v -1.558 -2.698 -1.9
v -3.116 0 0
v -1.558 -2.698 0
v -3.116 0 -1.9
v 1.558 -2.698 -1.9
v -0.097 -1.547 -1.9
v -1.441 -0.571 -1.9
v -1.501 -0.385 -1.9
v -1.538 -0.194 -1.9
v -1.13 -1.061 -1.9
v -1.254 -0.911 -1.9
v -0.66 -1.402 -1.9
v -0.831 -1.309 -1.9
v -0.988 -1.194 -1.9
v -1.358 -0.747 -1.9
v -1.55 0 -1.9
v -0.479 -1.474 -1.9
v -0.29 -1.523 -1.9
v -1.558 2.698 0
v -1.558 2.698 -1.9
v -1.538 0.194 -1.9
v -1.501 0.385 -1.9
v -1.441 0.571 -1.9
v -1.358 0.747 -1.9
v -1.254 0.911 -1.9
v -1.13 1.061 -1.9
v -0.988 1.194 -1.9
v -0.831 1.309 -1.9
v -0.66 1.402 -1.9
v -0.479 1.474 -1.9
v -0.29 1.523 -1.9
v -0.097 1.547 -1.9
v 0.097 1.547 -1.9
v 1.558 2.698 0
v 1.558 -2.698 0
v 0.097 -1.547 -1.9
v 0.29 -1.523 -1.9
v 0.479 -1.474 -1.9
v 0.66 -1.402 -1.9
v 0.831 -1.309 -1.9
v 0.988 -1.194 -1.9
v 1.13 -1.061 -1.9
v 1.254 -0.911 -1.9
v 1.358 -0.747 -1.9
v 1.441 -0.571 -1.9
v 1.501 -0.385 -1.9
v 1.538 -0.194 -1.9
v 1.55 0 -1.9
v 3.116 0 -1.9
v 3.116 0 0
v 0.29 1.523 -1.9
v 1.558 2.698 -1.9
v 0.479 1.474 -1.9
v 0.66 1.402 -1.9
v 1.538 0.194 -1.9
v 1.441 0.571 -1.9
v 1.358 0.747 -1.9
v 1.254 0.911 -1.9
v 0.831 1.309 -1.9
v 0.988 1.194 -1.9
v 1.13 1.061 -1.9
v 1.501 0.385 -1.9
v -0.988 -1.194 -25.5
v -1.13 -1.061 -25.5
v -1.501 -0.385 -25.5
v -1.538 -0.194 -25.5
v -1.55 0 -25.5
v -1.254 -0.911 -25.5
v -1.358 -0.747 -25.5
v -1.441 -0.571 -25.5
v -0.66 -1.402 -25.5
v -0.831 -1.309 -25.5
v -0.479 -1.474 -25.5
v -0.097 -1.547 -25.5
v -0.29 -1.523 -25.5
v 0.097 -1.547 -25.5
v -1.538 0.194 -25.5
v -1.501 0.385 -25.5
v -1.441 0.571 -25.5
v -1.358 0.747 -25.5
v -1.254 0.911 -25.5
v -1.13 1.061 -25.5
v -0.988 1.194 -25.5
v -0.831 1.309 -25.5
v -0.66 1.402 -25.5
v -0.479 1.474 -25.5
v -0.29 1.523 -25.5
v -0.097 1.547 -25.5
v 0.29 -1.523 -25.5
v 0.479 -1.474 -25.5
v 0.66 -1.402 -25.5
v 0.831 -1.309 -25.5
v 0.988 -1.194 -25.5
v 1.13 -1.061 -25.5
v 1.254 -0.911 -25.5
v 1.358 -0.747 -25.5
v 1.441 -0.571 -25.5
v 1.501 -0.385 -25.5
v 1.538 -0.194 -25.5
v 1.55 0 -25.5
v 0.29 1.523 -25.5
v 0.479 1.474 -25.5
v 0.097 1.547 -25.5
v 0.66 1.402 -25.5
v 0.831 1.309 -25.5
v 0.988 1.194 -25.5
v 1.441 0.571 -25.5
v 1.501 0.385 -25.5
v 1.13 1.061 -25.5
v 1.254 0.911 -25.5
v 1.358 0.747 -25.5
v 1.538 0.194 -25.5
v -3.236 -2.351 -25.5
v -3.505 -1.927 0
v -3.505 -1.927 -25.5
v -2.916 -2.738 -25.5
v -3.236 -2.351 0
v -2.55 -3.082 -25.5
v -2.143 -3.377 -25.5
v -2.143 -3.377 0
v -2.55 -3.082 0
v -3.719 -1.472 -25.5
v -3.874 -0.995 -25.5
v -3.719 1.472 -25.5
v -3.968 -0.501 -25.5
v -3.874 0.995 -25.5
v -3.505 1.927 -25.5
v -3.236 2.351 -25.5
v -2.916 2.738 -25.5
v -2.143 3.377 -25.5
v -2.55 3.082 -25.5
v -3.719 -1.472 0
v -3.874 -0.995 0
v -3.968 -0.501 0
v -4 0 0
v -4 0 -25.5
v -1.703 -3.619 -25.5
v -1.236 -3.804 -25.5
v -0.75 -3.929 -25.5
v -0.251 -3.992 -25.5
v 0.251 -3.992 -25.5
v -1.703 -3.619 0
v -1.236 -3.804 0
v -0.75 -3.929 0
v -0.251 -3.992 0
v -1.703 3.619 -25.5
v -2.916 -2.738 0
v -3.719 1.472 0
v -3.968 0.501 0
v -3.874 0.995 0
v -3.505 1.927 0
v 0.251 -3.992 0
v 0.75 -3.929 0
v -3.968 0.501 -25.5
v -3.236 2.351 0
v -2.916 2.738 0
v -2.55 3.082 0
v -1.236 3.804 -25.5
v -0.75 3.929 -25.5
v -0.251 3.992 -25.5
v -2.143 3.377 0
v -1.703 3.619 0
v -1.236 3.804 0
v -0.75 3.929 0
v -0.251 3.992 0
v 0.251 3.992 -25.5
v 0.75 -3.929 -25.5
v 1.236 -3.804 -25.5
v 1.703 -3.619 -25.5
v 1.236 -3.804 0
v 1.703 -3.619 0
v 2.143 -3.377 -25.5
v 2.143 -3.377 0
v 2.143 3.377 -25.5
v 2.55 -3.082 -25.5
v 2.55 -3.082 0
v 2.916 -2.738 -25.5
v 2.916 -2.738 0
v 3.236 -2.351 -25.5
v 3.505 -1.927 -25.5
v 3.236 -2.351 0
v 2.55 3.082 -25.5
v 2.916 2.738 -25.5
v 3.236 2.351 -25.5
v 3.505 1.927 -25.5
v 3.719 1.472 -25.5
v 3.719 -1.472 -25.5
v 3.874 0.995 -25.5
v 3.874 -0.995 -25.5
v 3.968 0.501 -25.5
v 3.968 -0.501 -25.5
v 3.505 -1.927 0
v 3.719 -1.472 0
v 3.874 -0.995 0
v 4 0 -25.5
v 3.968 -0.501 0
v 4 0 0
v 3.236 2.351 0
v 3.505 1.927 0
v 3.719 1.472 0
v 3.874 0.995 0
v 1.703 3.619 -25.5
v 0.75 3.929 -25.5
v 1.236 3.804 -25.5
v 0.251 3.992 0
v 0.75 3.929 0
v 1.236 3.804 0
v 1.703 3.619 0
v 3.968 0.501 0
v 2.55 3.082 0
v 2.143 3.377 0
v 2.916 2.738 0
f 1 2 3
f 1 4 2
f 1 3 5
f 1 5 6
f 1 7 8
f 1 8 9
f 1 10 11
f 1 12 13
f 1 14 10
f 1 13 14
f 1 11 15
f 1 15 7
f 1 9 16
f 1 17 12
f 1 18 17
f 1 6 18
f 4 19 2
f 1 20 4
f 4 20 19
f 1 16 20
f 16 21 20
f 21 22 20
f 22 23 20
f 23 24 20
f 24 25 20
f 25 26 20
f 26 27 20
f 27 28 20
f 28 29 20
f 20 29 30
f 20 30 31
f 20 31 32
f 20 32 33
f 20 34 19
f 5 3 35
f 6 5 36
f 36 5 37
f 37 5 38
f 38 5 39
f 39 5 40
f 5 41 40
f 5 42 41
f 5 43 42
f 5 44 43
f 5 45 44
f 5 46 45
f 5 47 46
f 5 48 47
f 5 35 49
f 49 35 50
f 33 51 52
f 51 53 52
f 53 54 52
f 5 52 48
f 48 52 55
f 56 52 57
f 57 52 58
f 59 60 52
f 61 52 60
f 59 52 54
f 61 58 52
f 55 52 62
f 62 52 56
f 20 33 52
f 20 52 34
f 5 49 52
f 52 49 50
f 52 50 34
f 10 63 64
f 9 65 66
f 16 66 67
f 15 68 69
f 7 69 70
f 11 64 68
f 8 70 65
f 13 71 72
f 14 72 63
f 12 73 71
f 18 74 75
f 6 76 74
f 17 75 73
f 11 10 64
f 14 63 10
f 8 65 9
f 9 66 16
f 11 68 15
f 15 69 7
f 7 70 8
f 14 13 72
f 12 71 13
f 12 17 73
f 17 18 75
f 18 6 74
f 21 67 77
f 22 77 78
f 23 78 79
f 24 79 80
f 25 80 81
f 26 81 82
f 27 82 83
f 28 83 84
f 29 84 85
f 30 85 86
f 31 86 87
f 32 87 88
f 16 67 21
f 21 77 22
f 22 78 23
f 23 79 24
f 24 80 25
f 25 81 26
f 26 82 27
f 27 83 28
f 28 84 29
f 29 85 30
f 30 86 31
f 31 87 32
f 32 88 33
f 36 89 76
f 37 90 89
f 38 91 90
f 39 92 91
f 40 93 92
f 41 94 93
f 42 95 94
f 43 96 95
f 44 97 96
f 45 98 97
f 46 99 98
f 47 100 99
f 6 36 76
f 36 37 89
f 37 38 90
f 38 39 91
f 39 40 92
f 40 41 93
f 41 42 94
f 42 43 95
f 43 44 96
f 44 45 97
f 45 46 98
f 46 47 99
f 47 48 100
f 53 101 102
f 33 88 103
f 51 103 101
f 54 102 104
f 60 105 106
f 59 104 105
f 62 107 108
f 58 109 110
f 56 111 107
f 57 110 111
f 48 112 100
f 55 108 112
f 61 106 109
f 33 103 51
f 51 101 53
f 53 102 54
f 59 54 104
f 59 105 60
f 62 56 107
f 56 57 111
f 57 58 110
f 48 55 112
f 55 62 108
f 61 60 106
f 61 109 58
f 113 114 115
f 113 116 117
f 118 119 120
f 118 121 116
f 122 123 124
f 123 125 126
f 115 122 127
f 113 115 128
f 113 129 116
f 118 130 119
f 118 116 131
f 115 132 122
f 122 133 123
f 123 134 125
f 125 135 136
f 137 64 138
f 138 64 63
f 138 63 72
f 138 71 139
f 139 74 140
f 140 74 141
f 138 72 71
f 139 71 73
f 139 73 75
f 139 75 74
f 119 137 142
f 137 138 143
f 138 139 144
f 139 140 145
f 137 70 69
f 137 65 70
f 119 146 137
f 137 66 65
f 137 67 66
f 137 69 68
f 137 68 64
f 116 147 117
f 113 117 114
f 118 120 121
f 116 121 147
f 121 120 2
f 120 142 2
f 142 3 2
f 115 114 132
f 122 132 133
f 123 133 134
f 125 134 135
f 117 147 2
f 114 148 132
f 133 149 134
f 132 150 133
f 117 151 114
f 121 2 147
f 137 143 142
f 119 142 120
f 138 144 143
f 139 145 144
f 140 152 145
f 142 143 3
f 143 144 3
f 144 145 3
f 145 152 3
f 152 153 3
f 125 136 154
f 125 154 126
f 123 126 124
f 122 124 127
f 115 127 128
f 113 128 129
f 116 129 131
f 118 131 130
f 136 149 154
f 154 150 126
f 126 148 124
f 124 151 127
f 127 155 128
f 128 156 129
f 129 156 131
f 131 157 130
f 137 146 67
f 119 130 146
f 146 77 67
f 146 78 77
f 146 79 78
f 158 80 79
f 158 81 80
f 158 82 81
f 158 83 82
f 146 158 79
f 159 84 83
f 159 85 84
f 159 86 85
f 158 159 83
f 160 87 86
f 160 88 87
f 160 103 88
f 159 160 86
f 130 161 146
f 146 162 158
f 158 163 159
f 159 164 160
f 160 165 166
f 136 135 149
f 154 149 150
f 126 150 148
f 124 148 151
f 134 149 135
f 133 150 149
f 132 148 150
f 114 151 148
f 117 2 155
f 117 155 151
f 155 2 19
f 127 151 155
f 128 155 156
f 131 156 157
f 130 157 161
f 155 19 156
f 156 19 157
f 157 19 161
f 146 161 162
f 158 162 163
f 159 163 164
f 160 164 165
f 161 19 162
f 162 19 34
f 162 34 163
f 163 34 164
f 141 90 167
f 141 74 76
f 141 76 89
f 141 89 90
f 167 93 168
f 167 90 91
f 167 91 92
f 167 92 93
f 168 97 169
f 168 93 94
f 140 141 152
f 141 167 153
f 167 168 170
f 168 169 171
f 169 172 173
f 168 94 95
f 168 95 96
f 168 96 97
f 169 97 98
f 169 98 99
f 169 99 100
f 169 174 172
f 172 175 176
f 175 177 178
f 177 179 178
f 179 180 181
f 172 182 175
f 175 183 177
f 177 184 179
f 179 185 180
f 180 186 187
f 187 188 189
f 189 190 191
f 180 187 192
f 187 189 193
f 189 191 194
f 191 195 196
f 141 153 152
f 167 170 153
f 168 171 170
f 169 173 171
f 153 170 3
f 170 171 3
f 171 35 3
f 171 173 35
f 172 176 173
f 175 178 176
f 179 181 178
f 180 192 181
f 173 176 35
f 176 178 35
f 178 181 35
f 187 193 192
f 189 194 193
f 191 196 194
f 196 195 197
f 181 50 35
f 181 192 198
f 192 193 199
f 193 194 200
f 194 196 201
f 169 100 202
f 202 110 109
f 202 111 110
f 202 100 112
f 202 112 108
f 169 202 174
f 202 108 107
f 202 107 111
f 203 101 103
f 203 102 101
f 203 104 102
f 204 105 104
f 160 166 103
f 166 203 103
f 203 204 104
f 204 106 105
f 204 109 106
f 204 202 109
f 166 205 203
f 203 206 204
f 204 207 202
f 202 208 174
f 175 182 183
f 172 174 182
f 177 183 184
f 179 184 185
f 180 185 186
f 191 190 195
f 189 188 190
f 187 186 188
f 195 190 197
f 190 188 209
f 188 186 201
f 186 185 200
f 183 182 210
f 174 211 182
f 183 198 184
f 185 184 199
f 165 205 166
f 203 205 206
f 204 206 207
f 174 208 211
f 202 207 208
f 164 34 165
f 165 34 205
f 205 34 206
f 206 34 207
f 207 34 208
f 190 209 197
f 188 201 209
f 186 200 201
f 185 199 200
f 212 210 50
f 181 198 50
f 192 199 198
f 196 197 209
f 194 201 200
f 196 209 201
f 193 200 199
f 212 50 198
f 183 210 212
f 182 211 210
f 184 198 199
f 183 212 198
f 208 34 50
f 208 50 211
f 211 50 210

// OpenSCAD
$fn = 50;

difference() {
	union() {
		translate(v = [0, 0, -25.5]) {
			cylinder(h = 25.5, r = 4.0);
		}
	}
	union() {
		translate(v = [0, 0, 0]) {
			rotate(a = [0, 0, 0]) {
				difference() {
					union() {
						translate(v = [0, 0, -1.9]) {
							linear_extrude(height = 1.9) {
								polygon(points = [[3.1158, 0.0], [1.5579000000000005, 2.698361953111554], [-1.5578999999999994, 2.6983619531115544], [-3.1158, 3.815754496783323e-16], [-1.5579000000000014, -2.6983619531115535], [1.557899999999998, -2.6983619531115552]]);
							}
						}
					}
					union();
				}
			}
		}
		#translate(v = [0, 0, -100.0]) {
			cylinder(h = 200, r = 1.55);
		}
	}
}
